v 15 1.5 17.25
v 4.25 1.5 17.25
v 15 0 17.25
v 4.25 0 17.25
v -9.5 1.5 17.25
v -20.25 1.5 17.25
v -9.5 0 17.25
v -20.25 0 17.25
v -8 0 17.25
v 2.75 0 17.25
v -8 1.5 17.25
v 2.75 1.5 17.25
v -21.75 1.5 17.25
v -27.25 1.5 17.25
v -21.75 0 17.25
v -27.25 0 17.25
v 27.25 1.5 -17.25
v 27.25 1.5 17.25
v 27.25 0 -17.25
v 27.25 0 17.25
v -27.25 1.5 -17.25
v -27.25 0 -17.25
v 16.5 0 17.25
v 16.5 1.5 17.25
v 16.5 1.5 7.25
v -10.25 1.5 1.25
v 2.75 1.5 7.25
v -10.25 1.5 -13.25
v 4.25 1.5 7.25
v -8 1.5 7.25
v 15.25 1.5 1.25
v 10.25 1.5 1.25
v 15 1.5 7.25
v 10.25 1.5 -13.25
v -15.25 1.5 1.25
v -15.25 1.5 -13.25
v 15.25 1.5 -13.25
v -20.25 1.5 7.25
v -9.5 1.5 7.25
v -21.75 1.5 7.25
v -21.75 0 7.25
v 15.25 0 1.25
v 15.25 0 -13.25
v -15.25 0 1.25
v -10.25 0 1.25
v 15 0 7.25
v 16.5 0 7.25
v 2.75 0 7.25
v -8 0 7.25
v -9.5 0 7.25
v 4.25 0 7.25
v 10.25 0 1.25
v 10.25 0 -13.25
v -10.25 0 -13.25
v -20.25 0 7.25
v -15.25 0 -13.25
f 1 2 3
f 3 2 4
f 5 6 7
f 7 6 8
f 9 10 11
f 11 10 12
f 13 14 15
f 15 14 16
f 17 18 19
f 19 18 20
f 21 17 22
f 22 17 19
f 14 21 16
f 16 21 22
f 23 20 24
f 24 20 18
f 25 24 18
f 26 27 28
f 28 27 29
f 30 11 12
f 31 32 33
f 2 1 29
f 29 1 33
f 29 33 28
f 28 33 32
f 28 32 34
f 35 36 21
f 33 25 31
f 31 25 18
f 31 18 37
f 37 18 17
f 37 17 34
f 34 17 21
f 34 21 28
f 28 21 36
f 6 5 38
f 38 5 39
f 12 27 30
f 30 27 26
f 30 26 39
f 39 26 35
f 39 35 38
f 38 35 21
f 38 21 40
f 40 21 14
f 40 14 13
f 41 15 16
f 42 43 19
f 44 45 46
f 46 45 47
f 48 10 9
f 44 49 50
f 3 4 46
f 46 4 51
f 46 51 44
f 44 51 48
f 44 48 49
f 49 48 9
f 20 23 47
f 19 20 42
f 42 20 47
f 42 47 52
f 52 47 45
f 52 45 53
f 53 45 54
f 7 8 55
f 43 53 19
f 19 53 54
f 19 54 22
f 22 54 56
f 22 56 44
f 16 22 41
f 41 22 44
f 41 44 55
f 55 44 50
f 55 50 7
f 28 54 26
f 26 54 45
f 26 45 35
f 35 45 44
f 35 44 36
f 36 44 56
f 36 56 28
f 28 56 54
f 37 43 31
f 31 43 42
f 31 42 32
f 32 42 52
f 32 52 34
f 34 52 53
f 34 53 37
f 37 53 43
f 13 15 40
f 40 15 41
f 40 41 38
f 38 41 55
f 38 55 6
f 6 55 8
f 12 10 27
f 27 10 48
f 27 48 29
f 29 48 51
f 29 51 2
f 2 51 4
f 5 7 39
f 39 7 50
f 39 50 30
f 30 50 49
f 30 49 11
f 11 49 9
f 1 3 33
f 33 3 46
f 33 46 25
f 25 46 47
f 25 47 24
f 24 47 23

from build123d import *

# Parameters (mm, degrees)
SKETCH1_W           = 54.5
SKETCH1_H           = 34.5
BOSS_EXTRUDE1_DEPTH = 1.5
SKETCH6_W           = 5
SKETCH6_H           = 14.5
CUT_EXTRUDE1_DEPTH  = 2
SKETCH9_W           = 5
SKETCH9_H           = 14.5
CUT_EXTRUDE2_DEPTH  = 2
SKETCH27_W          = 1.5
SKETCH27_H          = 10
CUT_EXTRUDE3_DEPTH  = 2
SKETCH37_W          = 1.5
SKETCH37_H          = 10
CUT_EXTRUDE10_DEPTH = 2
SKETCH39_W          = 1.5
SKETCH39_H          = 10
CUT_EXTRUDE11_DEPTH = 2
SKETCH41_W          = 1.5
SKETCH41_H          = 10
CUT_EXTRUDE12_DEPTH = 2


with BuildPart() as part:
    # Sketch1 → Boss-Extrude1 (new body)
    with BuildSketch(Plane(origin=(0, 0, 0), x_dir=(1, 0, 0), z_dir=(0, 1, 0))):
        Rectangle(SKETCH1_W, SKETCH1_H)
    extrude(amount=BOSS_EXTRUDE1_DEPTH)

    # Sketch6 → Cut-Extrude1 (cut)
    with BuildSketch(Plane(origin=(0, 1.5, 0), x_dir=(1, 0, 0), z_dir=(0, 1, 0))):
        with Locations((-12.75, 6)):
            Rectangle(SKETCH6_W, SKETCH6_H)
    extrude(amount=-CUT_EXTRUDE1_DEPTH, mode=Mode.SUBTRACT)

    # Sketch9 → Cut-Extrude2 (cut)
    with BuildSketch(Plane(origin=(0, 1.5, 0), x_dir=(1, 0, 0), z_dir=(0, 1, 0))):
        with Locations((12.75, 6)):
            Rectangle(SKETCH9_W, SKETCH9_H)
    extrude(amount=-CUT_EXTRUDE2_DEPTH, mode=Mode.SUBTRACT)

    # Sketch27 → Cut-Extrude3 (cut)
    with BuildSketch(Plane(origin=(0, 1.5, 0), x_dir=(1, 0, 0), z_dir=(0, 1, 0))):
        with Locations((-21, -12.25)):
            Rectangle(SKETCH27_W, SKETCH27_H)
    extrude(amount=-CUT_EXTRUDE3_DEPTH, mode=Mode.SUBTRACT)

    # Sketch37 → Cut-Extrude10 (cut)
    with BuildSketch(Plane(origin=(0, 1.5, 0), x_dir=(1, 0, 0), z_dir=(0, 1, 0))):
        with Locations((3.5, -12.25)):
            Rectangle(SKETCH37_W, SKETCH37_H)
    extrude(amount=-CUT_EXTRUDE10_DEPTH, mode=Mode.SUBTRACT)

    # Sketch39 → Cut-Extrude11 (cut)
    with BuildSketch(Plane(origin=(0, 1.5, 0), x_dir=(1, 0, 0), z_dir=(0, 1, 0))):
        with Locations((-8.75, -12.25)):
            Rectangle(SKETCH39_W, SKETCH39_H)
    extrude(amount=-CUT_EXTRUDE11_DEPTH, mode=Mode.SUBTRACT)

    # Sketch41 → Cut-Extrude12 (cut)
    with BuildSketch(Plane(origin=(0, 1.5, 0), x_dir=(1, 0, 0), z_dir=(0, 1, 0))):
        with Locations((15.75, -12.25)):
            Rectangle(SKETCH41_W, SKETCH41_H)
    extrude(amount=-CUT_EXTRUDE12_DEPTH, mode=Mode.SUBTRACT)


solid = part.part
